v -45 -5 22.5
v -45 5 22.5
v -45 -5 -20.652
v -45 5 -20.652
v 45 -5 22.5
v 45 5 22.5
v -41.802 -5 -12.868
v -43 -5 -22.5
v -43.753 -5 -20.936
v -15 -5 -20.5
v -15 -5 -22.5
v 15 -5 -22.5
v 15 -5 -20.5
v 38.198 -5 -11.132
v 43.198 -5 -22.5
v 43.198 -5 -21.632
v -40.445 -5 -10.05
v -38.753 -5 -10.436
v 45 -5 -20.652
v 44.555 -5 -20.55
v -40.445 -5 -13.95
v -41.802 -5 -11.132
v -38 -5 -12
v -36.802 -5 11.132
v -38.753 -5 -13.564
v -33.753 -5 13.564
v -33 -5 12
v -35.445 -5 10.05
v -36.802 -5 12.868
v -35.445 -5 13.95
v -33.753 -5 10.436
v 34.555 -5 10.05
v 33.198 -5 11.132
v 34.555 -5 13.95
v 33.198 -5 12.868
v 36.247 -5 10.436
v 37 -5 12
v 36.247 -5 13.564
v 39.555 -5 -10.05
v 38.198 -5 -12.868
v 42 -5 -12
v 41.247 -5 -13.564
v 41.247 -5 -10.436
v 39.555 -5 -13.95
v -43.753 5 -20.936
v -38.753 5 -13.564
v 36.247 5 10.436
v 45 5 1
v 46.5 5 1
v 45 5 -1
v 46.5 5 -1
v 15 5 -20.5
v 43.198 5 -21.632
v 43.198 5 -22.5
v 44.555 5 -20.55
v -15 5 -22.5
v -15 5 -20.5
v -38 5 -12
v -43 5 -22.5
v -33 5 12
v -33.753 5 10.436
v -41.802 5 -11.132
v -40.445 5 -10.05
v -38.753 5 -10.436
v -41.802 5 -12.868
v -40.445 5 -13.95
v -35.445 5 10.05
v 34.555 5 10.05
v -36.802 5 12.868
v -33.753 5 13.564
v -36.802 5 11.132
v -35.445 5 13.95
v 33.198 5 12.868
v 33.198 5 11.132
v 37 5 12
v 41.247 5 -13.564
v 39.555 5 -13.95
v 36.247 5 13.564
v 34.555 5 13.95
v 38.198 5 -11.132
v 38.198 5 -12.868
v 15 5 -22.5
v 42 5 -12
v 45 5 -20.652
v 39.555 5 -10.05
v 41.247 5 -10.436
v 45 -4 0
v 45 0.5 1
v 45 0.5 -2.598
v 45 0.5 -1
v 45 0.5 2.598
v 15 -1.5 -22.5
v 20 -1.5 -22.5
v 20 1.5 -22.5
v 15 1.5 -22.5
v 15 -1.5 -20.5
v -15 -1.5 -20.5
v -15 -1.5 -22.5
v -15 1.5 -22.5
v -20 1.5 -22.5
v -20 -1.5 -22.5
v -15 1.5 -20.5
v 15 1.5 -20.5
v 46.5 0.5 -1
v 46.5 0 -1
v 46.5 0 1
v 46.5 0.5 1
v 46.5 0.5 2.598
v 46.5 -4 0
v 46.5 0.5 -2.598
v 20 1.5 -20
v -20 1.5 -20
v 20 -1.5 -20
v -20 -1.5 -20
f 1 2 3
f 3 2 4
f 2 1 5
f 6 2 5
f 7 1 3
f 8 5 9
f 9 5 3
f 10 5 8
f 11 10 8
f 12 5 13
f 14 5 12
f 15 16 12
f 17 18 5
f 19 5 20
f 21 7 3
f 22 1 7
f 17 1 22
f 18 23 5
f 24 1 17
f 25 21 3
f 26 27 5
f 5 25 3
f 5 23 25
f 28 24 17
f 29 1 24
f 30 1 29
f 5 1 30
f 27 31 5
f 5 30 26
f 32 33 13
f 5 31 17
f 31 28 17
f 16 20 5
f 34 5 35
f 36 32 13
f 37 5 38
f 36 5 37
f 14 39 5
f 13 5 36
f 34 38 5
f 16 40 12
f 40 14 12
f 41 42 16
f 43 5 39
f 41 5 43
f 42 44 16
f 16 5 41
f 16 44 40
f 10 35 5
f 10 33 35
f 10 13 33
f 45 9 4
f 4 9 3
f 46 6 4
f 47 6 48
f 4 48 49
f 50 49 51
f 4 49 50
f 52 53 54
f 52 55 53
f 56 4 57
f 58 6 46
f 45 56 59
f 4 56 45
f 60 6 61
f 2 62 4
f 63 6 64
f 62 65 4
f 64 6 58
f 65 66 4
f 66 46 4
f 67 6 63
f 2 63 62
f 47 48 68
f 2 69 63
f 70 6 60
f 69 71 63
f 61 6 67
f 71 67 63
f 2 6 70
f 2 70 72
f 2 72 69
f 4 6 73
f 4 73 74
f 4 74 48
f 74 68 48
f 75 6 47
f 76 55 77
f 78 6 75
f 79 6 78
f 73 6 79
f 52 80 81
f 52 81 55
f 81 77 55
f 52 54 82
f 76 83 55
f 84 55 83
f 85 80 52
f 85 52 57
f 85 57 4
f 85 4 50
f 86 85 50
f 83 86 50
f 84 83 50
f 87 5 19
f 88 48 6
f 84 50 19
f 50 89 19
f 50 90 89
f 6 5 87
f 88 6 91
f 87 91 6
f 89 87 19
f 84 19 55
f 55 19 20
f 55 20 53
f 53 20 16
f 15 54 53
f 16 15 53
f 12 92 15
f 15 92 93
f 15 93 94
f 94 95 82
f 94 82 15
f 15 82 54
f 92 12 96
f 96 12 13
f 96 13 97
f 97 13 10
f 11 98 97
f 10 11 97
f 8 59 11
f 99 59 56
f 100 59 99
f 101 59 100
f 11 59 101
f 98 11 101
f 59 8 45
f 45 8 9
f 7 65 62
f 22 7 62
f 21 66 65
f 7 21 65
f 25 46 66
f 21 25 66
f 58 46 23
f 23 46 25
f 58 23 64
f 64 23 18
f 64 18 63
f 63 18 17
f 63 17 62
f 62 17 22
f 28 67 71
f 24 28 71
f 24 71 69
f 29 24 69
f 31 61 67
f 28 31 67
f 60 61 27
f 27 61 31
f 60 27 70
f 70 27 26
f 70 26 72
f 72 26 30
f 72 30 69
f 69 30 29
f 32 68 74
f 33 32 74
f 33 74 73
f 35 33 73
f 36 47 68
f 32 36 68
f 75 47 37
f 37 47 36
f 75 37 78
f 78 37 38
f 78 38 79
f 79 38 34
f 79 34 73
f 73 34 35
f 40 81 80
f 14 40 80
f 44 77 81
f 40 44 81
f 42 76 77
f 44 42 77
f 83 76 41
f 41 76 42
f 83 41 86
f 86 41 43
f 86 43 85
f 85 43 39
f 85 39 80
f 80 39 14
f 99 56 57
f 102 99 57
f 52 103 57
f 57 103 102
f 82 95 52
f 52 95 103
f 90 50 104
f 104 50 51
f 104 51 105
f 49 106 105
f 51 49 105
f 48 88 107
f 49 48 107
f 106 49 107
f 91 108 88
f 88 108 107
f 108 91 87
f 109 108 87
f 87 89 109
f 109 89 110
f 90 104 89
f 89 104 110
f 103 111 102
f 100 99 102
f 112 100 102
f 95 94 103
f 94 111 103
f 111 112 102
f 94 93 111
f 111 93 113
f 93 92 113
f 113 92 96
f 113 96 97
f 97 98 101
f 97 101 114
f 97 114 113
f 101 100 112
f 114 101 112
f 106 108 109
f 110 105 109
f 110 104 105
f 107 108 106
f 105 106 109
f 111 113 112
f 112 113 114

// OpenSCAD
// file: filterMount_screwHoles.scad
module upperScrewHoles(){
	//upperMiddleHalf
	translate([40,12,0]) cylinder(h=30,r=2,center=true);
	translate([-40,12,0]) cylinder(h=30,r=2,center=true);
	//upperHalf
	translate([35,-12,0]) cylinder(h=30,r=2,center=true);
	translate([-35,-12,0]) cylinder(h=30,r=2,center=true);
}

module lowerScrewHoles(){
	//lowerMiddleHalf
	translate([40,-12,0]) cylinder(h=30,r=2,center=true);
	translate([-40,-12,0]) cylinder(h=30,r=2,center=true);
	//bottomwHalf
	translate([35,12,0]) cylinder(h=30,r=2,center=true);
	translate([-35,12,0]) cylinder(h=30,r=2,center=true);
}

upperScrewHoles();
lowerScrewHoles();
// file: arrow.scad
module arrow(){
	//arrowBody
	translate([0,-1,0]) color([0,1,1]) cube(size=[2.5,2,5]);
	//arrowHead
	translate([0,0,-1]) color([0,1,1]) rotate([0,90,0]) cylinder(h=2.5,r=3,$fn=3);
}

arrow();
// main file
use <arrow.scad>
use <filterMount_screwHoles.scad>

module 522SP_filterMountTop(){
	//arrow
	translate([44,0,0]){
		rotate([0,0,0]){
			arrow();
		}
	}
	//522SP Filter Mount Top
	difference(){
		color([.2,.1,.6]) cube(size=[90,45,10],center=true);
		//lfilterBody
		translate([0,22.5,0]) cube(size=[40,5,3],center=true);
		//filterHole
		translate([0,22.5,0]) cube(size=[30,4,20],center=true);
		//screwHoles
		upperScrewHoles();
		//cornerNotch
		translate([45,22.5,0]) cylinder(h=30,r=2,center=true);
		translate([-45,22.5,0]) cylinder(h=30,r=2,center=true);
	}
}

//522SP_filterMount
rotate([-90,0,0]) translate([0,0,0]){
	522SP_filterMountTop();
}
